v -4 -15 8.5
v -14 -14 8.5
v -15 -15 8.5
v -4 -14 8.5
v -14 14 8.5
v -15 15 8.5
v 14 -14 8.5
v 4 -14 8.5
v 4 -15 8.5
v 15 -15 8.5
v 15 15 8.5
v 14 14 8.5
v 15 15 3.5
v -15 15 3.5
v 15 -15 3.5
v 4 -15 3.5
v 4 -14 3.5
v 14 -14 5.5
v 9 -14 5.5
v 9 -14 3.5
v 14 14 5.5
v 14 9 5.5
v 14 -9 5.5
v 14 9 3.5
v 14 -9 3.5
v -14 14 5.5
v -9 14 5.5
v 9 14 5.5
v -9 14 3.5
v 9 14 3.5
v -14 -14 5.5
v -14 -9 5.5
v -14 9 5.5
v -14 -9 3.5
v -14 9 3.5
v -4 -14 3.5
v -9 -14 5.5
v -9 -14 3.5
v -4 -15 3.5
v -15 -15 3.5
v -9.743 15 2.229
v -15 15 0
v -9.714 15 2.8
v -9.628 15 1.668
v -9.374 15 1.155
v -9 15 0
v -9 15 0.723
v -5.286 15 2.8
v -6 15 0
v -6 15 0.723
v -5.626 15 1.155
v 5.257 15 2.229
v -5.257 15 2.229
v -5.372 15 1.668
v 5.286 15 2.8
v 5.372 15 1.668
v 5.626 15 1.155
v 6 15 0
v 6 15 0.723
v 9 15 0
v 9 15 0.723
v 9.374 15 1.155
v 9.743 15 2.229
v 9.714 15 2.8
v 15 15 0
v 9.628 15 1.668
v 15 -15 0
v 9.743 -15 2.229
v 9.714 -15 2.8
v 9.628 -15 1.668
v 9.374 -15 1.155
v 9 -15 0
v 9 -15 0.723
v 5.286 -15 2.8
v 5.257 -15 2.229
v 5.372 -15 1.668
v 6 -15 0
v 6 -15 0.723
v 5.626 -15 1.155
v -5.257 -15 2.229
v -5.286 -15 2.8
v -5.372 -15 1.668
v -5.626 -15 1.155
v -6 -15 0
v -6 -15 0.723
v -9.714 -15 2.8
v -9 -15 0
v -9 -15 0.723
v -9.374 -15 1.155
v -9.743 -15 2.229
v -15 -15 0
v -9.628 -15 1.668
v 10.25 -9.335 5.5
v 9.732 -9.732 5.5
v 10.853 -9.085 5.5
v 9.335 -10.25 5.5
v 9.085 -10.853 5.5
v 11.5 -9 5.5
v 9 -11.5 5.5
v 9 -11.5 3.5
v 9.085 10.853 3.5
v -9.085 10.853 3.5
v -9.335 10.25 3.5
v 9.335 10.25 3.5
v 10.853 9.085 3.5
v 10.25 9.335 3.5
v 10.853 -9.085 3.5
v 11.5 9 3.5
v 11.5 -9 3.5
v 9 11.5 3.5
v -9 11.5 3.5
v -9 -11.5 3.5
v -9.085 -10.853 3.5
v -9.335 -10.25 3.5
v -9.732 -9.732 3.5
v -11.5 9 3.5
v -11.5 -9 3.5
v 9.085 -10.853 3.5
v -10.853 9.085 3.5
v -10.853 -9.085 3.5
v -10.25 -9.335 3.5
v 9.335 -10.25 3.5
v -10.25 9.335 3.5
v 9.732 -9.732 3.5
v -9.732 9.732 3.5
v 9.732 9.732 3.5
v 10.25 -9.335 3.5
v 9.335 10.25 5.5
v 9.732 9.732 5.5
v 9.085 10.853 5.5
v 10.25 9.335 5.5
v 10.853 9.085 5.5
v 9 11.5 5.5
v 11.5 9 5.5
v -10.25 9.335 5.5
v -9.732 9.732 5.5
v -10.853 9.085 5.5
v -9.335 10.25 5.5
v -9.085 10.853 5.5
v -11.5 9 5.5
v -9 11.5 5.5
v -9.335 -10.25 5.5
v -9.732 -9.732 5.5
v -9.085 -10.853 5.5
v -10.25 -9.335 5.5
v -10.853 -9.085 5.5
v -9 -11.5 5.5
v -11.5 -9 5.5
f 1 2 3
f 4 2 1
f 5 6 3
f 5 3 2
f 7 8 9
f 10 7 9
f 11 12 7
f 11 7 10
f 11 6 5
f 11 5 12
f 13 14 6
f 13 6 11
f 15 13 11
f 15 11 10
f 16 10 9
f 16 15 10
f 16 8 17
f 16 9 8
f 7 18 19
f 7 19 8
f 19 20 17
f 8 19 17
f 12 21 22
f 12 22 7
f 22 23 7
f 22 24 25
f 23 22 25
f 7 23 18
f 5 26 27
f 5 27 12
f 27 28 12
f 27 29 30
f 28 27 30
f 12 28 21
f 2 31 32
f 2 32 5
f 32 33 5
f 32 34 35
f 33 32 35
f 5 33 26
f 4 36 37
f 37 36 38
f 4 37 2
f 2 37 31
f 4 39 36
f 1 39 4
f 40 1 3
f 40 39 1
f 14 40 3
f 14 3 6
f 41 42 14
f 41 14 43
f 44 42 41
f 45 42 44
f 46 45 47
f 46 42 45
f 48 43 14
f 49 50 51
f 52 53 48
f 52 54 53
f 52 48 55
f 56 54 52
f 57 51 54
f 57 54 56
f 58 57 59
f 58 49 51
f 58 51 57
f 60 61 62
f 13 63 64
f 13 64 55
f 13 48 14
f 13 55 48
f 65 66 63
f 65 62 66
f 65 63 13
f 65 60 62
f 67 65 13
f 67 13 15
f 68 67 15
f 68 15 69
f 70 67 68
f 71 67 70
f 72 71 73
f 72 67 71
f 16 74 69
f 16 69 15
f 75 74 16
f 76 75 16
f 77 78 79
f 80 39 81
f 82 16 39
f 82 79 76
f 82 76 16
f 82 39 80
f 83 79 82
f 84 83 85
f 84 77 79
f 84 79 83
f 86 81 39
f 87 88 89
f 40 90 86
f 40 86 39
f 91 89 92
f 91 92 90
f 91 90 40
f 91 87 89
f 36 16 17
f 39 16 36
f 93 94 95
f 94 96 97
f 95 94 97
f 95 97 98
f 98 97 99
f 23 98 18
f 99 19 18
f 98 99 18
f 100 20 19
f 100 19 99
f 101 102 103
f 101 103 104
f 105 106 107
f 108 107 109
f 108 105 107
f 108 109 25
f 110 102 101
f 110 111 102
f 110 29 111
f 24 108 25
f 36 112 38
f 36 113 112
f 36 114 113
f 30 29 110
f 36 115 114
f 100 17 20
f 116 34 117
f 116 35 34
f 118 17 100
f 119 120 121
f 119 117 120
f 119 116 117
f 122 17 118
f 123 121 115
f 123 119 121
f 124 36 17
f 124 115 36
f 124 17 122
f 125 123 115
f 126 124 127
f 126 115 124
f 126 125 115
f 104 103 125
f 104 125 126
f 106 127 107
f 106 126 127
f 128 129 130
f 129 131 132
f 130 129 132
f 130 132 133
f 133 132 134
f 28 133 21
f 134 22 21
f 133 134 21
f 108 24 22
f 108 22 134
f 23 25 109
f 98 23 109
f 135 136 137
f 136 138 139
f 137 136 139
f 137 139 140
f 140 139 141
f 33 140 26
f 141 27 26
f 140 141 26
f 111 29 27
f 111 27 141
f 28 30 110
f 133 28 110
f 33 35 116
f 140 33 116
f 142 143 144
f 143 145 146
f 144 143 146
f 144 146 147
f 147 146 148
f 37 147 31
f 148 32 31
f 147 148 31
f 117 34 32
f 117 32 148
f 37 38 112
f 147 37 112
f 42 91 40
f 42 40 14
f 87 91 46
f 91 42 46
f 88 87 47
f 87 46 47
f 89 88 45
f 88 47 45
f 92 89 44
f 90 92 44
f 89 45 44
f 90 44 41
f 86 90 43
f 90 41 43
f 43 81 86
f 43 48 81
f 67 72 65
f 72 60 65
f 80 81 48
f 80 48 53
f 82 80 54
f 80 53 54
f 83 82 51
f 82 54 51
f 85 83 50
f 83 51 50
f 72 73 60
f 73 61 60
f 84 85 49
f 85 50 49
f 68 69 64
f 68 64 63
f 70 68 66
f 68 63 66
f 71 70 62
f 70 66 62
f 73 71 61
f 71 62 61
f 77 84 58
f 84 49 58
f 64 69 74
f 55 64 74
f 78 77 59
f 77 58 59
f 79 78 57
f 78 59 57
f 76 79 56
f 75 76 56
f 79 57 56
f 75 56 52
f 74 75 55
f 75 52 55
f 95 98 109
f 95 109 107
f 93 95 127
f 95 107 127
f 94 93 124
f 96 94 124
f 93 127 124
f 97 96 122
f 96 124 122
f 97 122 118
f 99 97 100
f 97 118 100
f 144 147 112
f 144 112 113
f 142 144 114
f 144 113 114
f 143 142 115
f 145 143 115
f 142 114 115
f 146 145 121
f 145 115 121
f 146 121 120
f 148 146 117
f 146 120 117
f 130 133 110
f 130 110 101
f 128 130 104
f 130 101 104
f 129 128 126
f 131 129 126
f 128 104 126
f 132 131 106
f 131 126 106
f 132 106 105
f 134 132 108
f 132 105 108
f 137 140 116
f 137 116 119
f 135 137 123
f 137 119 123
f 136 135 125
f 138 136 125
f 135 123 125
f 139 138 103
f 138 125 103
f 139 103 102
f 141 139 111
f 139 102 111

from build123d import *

# Parameters (mm, degrees)
SKETCH_W            = 30
SKETCH_H            = 30
PAD_DEPTH           = 3.5
POCKET_DEPTH        = 30.001
LINEARPATTERN_COUNT = 2
LINEARPATTERN_PITCH = 15
SKETCH002_W         = 30
SKETCH002_H         = 30
SKETCH002_W_2       = 28
SKETCH002_H_2       = 28
PAD001_DEPTH        = 5
PAD002_DEPTH        = 2
POLARPATTERN_COUNT  = 4
SKETCH004_W         = 8
SKETCH004_H         = 5
POCKET001_DEPTH     = 1


with BuildPart() as part:
    # Sketch → Pad (new body)
    with BuildSketch(Plane.XY):
        Rectangle(SKETCH_W, SKETCH_H)
    extrude(amount=PAD_DEPTH)

    # Sketch001 → Pocket (cut, through all)
    with BuildSketch(Plane(origin=(0, 15, 0), x_dir=(-1, 0, 0), z_dir=(0, 1, 0))):
        with BuildLine():
            Line((-9, 0.722949), (-9, 0))
            Line((-9, 0), (-6, 0))
            Line((-6, 0), (-6, 0.722949))
            ThreePointArc((-6, 0.722949), (-5.37226, 1.668412), (-5.285841, 2.8))
            Line((-9.714159, 2.8), (-5.285841, 2.8))
            ThreePointArc((-9.714159, 2.8), (-9.62774, 1.668412), (-9, 0.722949))
        make_face()
    pocket = extrude(amount=-POCKET_DEPTH, mode=Mode.SUBTRACT)

    # LinearPattern: Pocket ×2
    with Locations(*[(-i * LINEARPATTERN_PITCH, 0, 0) for i in range(1, LINEARPATTERN_COUNT)]):
        add(pocket, mode=Mode.SUBTRACT)

    # Sketch002 → Pad001 (new body)
    with BuildSketch(Plane.XY.offset(3.5)):
        Rectangle(SKETCH002_W, SKETCH002_H)
        Rectangle(SKETCH002_W_2, SKETCH002_H_2, mode=Mode.SUBTRACT)
    extrude(amount=PAD001_DEPTH)

    # Sketch003 → Pad002 (new body)
    with BuildSketch(Plane.XY.offset(3.5)):
        with BuildLine():
            Line((-14, 14), (-14, 9))
            Line((-14, 9), (-11.5, 9))
            ThreePointArc((-11.5, 9), (-9.732233, 9.732233), (-9, 11.5))
            Line((-9, 14), (-9, 11.5))
            Line((-14, 14), (-9, 14))
        make_face()
    pad002 = extrude(amount=PAD002_DEPTH)

    # PolarPattern: Pad002 ×4 about axis
    polarpattern_axis = Axis((0, 0, 3.5), (0, 0, 1))
    for i in range(1, POLARPATTERN_COUNT):
        add(pad002.rotate(polarpattern_axis, i * 360 / POLARPATTERN_COUNT))

    # Sketch004 → Pocket001 (cut)
    with BuildSketch(Plane.XZ.offset(15)):
        with Locations((0, 6)):
            Rectangle(SKETCH004_W, SKETCH004_H)
    extrude(amount=-POCKET001_DEPTH, mode=Mode.SUBTRACT)


solid = part.part
